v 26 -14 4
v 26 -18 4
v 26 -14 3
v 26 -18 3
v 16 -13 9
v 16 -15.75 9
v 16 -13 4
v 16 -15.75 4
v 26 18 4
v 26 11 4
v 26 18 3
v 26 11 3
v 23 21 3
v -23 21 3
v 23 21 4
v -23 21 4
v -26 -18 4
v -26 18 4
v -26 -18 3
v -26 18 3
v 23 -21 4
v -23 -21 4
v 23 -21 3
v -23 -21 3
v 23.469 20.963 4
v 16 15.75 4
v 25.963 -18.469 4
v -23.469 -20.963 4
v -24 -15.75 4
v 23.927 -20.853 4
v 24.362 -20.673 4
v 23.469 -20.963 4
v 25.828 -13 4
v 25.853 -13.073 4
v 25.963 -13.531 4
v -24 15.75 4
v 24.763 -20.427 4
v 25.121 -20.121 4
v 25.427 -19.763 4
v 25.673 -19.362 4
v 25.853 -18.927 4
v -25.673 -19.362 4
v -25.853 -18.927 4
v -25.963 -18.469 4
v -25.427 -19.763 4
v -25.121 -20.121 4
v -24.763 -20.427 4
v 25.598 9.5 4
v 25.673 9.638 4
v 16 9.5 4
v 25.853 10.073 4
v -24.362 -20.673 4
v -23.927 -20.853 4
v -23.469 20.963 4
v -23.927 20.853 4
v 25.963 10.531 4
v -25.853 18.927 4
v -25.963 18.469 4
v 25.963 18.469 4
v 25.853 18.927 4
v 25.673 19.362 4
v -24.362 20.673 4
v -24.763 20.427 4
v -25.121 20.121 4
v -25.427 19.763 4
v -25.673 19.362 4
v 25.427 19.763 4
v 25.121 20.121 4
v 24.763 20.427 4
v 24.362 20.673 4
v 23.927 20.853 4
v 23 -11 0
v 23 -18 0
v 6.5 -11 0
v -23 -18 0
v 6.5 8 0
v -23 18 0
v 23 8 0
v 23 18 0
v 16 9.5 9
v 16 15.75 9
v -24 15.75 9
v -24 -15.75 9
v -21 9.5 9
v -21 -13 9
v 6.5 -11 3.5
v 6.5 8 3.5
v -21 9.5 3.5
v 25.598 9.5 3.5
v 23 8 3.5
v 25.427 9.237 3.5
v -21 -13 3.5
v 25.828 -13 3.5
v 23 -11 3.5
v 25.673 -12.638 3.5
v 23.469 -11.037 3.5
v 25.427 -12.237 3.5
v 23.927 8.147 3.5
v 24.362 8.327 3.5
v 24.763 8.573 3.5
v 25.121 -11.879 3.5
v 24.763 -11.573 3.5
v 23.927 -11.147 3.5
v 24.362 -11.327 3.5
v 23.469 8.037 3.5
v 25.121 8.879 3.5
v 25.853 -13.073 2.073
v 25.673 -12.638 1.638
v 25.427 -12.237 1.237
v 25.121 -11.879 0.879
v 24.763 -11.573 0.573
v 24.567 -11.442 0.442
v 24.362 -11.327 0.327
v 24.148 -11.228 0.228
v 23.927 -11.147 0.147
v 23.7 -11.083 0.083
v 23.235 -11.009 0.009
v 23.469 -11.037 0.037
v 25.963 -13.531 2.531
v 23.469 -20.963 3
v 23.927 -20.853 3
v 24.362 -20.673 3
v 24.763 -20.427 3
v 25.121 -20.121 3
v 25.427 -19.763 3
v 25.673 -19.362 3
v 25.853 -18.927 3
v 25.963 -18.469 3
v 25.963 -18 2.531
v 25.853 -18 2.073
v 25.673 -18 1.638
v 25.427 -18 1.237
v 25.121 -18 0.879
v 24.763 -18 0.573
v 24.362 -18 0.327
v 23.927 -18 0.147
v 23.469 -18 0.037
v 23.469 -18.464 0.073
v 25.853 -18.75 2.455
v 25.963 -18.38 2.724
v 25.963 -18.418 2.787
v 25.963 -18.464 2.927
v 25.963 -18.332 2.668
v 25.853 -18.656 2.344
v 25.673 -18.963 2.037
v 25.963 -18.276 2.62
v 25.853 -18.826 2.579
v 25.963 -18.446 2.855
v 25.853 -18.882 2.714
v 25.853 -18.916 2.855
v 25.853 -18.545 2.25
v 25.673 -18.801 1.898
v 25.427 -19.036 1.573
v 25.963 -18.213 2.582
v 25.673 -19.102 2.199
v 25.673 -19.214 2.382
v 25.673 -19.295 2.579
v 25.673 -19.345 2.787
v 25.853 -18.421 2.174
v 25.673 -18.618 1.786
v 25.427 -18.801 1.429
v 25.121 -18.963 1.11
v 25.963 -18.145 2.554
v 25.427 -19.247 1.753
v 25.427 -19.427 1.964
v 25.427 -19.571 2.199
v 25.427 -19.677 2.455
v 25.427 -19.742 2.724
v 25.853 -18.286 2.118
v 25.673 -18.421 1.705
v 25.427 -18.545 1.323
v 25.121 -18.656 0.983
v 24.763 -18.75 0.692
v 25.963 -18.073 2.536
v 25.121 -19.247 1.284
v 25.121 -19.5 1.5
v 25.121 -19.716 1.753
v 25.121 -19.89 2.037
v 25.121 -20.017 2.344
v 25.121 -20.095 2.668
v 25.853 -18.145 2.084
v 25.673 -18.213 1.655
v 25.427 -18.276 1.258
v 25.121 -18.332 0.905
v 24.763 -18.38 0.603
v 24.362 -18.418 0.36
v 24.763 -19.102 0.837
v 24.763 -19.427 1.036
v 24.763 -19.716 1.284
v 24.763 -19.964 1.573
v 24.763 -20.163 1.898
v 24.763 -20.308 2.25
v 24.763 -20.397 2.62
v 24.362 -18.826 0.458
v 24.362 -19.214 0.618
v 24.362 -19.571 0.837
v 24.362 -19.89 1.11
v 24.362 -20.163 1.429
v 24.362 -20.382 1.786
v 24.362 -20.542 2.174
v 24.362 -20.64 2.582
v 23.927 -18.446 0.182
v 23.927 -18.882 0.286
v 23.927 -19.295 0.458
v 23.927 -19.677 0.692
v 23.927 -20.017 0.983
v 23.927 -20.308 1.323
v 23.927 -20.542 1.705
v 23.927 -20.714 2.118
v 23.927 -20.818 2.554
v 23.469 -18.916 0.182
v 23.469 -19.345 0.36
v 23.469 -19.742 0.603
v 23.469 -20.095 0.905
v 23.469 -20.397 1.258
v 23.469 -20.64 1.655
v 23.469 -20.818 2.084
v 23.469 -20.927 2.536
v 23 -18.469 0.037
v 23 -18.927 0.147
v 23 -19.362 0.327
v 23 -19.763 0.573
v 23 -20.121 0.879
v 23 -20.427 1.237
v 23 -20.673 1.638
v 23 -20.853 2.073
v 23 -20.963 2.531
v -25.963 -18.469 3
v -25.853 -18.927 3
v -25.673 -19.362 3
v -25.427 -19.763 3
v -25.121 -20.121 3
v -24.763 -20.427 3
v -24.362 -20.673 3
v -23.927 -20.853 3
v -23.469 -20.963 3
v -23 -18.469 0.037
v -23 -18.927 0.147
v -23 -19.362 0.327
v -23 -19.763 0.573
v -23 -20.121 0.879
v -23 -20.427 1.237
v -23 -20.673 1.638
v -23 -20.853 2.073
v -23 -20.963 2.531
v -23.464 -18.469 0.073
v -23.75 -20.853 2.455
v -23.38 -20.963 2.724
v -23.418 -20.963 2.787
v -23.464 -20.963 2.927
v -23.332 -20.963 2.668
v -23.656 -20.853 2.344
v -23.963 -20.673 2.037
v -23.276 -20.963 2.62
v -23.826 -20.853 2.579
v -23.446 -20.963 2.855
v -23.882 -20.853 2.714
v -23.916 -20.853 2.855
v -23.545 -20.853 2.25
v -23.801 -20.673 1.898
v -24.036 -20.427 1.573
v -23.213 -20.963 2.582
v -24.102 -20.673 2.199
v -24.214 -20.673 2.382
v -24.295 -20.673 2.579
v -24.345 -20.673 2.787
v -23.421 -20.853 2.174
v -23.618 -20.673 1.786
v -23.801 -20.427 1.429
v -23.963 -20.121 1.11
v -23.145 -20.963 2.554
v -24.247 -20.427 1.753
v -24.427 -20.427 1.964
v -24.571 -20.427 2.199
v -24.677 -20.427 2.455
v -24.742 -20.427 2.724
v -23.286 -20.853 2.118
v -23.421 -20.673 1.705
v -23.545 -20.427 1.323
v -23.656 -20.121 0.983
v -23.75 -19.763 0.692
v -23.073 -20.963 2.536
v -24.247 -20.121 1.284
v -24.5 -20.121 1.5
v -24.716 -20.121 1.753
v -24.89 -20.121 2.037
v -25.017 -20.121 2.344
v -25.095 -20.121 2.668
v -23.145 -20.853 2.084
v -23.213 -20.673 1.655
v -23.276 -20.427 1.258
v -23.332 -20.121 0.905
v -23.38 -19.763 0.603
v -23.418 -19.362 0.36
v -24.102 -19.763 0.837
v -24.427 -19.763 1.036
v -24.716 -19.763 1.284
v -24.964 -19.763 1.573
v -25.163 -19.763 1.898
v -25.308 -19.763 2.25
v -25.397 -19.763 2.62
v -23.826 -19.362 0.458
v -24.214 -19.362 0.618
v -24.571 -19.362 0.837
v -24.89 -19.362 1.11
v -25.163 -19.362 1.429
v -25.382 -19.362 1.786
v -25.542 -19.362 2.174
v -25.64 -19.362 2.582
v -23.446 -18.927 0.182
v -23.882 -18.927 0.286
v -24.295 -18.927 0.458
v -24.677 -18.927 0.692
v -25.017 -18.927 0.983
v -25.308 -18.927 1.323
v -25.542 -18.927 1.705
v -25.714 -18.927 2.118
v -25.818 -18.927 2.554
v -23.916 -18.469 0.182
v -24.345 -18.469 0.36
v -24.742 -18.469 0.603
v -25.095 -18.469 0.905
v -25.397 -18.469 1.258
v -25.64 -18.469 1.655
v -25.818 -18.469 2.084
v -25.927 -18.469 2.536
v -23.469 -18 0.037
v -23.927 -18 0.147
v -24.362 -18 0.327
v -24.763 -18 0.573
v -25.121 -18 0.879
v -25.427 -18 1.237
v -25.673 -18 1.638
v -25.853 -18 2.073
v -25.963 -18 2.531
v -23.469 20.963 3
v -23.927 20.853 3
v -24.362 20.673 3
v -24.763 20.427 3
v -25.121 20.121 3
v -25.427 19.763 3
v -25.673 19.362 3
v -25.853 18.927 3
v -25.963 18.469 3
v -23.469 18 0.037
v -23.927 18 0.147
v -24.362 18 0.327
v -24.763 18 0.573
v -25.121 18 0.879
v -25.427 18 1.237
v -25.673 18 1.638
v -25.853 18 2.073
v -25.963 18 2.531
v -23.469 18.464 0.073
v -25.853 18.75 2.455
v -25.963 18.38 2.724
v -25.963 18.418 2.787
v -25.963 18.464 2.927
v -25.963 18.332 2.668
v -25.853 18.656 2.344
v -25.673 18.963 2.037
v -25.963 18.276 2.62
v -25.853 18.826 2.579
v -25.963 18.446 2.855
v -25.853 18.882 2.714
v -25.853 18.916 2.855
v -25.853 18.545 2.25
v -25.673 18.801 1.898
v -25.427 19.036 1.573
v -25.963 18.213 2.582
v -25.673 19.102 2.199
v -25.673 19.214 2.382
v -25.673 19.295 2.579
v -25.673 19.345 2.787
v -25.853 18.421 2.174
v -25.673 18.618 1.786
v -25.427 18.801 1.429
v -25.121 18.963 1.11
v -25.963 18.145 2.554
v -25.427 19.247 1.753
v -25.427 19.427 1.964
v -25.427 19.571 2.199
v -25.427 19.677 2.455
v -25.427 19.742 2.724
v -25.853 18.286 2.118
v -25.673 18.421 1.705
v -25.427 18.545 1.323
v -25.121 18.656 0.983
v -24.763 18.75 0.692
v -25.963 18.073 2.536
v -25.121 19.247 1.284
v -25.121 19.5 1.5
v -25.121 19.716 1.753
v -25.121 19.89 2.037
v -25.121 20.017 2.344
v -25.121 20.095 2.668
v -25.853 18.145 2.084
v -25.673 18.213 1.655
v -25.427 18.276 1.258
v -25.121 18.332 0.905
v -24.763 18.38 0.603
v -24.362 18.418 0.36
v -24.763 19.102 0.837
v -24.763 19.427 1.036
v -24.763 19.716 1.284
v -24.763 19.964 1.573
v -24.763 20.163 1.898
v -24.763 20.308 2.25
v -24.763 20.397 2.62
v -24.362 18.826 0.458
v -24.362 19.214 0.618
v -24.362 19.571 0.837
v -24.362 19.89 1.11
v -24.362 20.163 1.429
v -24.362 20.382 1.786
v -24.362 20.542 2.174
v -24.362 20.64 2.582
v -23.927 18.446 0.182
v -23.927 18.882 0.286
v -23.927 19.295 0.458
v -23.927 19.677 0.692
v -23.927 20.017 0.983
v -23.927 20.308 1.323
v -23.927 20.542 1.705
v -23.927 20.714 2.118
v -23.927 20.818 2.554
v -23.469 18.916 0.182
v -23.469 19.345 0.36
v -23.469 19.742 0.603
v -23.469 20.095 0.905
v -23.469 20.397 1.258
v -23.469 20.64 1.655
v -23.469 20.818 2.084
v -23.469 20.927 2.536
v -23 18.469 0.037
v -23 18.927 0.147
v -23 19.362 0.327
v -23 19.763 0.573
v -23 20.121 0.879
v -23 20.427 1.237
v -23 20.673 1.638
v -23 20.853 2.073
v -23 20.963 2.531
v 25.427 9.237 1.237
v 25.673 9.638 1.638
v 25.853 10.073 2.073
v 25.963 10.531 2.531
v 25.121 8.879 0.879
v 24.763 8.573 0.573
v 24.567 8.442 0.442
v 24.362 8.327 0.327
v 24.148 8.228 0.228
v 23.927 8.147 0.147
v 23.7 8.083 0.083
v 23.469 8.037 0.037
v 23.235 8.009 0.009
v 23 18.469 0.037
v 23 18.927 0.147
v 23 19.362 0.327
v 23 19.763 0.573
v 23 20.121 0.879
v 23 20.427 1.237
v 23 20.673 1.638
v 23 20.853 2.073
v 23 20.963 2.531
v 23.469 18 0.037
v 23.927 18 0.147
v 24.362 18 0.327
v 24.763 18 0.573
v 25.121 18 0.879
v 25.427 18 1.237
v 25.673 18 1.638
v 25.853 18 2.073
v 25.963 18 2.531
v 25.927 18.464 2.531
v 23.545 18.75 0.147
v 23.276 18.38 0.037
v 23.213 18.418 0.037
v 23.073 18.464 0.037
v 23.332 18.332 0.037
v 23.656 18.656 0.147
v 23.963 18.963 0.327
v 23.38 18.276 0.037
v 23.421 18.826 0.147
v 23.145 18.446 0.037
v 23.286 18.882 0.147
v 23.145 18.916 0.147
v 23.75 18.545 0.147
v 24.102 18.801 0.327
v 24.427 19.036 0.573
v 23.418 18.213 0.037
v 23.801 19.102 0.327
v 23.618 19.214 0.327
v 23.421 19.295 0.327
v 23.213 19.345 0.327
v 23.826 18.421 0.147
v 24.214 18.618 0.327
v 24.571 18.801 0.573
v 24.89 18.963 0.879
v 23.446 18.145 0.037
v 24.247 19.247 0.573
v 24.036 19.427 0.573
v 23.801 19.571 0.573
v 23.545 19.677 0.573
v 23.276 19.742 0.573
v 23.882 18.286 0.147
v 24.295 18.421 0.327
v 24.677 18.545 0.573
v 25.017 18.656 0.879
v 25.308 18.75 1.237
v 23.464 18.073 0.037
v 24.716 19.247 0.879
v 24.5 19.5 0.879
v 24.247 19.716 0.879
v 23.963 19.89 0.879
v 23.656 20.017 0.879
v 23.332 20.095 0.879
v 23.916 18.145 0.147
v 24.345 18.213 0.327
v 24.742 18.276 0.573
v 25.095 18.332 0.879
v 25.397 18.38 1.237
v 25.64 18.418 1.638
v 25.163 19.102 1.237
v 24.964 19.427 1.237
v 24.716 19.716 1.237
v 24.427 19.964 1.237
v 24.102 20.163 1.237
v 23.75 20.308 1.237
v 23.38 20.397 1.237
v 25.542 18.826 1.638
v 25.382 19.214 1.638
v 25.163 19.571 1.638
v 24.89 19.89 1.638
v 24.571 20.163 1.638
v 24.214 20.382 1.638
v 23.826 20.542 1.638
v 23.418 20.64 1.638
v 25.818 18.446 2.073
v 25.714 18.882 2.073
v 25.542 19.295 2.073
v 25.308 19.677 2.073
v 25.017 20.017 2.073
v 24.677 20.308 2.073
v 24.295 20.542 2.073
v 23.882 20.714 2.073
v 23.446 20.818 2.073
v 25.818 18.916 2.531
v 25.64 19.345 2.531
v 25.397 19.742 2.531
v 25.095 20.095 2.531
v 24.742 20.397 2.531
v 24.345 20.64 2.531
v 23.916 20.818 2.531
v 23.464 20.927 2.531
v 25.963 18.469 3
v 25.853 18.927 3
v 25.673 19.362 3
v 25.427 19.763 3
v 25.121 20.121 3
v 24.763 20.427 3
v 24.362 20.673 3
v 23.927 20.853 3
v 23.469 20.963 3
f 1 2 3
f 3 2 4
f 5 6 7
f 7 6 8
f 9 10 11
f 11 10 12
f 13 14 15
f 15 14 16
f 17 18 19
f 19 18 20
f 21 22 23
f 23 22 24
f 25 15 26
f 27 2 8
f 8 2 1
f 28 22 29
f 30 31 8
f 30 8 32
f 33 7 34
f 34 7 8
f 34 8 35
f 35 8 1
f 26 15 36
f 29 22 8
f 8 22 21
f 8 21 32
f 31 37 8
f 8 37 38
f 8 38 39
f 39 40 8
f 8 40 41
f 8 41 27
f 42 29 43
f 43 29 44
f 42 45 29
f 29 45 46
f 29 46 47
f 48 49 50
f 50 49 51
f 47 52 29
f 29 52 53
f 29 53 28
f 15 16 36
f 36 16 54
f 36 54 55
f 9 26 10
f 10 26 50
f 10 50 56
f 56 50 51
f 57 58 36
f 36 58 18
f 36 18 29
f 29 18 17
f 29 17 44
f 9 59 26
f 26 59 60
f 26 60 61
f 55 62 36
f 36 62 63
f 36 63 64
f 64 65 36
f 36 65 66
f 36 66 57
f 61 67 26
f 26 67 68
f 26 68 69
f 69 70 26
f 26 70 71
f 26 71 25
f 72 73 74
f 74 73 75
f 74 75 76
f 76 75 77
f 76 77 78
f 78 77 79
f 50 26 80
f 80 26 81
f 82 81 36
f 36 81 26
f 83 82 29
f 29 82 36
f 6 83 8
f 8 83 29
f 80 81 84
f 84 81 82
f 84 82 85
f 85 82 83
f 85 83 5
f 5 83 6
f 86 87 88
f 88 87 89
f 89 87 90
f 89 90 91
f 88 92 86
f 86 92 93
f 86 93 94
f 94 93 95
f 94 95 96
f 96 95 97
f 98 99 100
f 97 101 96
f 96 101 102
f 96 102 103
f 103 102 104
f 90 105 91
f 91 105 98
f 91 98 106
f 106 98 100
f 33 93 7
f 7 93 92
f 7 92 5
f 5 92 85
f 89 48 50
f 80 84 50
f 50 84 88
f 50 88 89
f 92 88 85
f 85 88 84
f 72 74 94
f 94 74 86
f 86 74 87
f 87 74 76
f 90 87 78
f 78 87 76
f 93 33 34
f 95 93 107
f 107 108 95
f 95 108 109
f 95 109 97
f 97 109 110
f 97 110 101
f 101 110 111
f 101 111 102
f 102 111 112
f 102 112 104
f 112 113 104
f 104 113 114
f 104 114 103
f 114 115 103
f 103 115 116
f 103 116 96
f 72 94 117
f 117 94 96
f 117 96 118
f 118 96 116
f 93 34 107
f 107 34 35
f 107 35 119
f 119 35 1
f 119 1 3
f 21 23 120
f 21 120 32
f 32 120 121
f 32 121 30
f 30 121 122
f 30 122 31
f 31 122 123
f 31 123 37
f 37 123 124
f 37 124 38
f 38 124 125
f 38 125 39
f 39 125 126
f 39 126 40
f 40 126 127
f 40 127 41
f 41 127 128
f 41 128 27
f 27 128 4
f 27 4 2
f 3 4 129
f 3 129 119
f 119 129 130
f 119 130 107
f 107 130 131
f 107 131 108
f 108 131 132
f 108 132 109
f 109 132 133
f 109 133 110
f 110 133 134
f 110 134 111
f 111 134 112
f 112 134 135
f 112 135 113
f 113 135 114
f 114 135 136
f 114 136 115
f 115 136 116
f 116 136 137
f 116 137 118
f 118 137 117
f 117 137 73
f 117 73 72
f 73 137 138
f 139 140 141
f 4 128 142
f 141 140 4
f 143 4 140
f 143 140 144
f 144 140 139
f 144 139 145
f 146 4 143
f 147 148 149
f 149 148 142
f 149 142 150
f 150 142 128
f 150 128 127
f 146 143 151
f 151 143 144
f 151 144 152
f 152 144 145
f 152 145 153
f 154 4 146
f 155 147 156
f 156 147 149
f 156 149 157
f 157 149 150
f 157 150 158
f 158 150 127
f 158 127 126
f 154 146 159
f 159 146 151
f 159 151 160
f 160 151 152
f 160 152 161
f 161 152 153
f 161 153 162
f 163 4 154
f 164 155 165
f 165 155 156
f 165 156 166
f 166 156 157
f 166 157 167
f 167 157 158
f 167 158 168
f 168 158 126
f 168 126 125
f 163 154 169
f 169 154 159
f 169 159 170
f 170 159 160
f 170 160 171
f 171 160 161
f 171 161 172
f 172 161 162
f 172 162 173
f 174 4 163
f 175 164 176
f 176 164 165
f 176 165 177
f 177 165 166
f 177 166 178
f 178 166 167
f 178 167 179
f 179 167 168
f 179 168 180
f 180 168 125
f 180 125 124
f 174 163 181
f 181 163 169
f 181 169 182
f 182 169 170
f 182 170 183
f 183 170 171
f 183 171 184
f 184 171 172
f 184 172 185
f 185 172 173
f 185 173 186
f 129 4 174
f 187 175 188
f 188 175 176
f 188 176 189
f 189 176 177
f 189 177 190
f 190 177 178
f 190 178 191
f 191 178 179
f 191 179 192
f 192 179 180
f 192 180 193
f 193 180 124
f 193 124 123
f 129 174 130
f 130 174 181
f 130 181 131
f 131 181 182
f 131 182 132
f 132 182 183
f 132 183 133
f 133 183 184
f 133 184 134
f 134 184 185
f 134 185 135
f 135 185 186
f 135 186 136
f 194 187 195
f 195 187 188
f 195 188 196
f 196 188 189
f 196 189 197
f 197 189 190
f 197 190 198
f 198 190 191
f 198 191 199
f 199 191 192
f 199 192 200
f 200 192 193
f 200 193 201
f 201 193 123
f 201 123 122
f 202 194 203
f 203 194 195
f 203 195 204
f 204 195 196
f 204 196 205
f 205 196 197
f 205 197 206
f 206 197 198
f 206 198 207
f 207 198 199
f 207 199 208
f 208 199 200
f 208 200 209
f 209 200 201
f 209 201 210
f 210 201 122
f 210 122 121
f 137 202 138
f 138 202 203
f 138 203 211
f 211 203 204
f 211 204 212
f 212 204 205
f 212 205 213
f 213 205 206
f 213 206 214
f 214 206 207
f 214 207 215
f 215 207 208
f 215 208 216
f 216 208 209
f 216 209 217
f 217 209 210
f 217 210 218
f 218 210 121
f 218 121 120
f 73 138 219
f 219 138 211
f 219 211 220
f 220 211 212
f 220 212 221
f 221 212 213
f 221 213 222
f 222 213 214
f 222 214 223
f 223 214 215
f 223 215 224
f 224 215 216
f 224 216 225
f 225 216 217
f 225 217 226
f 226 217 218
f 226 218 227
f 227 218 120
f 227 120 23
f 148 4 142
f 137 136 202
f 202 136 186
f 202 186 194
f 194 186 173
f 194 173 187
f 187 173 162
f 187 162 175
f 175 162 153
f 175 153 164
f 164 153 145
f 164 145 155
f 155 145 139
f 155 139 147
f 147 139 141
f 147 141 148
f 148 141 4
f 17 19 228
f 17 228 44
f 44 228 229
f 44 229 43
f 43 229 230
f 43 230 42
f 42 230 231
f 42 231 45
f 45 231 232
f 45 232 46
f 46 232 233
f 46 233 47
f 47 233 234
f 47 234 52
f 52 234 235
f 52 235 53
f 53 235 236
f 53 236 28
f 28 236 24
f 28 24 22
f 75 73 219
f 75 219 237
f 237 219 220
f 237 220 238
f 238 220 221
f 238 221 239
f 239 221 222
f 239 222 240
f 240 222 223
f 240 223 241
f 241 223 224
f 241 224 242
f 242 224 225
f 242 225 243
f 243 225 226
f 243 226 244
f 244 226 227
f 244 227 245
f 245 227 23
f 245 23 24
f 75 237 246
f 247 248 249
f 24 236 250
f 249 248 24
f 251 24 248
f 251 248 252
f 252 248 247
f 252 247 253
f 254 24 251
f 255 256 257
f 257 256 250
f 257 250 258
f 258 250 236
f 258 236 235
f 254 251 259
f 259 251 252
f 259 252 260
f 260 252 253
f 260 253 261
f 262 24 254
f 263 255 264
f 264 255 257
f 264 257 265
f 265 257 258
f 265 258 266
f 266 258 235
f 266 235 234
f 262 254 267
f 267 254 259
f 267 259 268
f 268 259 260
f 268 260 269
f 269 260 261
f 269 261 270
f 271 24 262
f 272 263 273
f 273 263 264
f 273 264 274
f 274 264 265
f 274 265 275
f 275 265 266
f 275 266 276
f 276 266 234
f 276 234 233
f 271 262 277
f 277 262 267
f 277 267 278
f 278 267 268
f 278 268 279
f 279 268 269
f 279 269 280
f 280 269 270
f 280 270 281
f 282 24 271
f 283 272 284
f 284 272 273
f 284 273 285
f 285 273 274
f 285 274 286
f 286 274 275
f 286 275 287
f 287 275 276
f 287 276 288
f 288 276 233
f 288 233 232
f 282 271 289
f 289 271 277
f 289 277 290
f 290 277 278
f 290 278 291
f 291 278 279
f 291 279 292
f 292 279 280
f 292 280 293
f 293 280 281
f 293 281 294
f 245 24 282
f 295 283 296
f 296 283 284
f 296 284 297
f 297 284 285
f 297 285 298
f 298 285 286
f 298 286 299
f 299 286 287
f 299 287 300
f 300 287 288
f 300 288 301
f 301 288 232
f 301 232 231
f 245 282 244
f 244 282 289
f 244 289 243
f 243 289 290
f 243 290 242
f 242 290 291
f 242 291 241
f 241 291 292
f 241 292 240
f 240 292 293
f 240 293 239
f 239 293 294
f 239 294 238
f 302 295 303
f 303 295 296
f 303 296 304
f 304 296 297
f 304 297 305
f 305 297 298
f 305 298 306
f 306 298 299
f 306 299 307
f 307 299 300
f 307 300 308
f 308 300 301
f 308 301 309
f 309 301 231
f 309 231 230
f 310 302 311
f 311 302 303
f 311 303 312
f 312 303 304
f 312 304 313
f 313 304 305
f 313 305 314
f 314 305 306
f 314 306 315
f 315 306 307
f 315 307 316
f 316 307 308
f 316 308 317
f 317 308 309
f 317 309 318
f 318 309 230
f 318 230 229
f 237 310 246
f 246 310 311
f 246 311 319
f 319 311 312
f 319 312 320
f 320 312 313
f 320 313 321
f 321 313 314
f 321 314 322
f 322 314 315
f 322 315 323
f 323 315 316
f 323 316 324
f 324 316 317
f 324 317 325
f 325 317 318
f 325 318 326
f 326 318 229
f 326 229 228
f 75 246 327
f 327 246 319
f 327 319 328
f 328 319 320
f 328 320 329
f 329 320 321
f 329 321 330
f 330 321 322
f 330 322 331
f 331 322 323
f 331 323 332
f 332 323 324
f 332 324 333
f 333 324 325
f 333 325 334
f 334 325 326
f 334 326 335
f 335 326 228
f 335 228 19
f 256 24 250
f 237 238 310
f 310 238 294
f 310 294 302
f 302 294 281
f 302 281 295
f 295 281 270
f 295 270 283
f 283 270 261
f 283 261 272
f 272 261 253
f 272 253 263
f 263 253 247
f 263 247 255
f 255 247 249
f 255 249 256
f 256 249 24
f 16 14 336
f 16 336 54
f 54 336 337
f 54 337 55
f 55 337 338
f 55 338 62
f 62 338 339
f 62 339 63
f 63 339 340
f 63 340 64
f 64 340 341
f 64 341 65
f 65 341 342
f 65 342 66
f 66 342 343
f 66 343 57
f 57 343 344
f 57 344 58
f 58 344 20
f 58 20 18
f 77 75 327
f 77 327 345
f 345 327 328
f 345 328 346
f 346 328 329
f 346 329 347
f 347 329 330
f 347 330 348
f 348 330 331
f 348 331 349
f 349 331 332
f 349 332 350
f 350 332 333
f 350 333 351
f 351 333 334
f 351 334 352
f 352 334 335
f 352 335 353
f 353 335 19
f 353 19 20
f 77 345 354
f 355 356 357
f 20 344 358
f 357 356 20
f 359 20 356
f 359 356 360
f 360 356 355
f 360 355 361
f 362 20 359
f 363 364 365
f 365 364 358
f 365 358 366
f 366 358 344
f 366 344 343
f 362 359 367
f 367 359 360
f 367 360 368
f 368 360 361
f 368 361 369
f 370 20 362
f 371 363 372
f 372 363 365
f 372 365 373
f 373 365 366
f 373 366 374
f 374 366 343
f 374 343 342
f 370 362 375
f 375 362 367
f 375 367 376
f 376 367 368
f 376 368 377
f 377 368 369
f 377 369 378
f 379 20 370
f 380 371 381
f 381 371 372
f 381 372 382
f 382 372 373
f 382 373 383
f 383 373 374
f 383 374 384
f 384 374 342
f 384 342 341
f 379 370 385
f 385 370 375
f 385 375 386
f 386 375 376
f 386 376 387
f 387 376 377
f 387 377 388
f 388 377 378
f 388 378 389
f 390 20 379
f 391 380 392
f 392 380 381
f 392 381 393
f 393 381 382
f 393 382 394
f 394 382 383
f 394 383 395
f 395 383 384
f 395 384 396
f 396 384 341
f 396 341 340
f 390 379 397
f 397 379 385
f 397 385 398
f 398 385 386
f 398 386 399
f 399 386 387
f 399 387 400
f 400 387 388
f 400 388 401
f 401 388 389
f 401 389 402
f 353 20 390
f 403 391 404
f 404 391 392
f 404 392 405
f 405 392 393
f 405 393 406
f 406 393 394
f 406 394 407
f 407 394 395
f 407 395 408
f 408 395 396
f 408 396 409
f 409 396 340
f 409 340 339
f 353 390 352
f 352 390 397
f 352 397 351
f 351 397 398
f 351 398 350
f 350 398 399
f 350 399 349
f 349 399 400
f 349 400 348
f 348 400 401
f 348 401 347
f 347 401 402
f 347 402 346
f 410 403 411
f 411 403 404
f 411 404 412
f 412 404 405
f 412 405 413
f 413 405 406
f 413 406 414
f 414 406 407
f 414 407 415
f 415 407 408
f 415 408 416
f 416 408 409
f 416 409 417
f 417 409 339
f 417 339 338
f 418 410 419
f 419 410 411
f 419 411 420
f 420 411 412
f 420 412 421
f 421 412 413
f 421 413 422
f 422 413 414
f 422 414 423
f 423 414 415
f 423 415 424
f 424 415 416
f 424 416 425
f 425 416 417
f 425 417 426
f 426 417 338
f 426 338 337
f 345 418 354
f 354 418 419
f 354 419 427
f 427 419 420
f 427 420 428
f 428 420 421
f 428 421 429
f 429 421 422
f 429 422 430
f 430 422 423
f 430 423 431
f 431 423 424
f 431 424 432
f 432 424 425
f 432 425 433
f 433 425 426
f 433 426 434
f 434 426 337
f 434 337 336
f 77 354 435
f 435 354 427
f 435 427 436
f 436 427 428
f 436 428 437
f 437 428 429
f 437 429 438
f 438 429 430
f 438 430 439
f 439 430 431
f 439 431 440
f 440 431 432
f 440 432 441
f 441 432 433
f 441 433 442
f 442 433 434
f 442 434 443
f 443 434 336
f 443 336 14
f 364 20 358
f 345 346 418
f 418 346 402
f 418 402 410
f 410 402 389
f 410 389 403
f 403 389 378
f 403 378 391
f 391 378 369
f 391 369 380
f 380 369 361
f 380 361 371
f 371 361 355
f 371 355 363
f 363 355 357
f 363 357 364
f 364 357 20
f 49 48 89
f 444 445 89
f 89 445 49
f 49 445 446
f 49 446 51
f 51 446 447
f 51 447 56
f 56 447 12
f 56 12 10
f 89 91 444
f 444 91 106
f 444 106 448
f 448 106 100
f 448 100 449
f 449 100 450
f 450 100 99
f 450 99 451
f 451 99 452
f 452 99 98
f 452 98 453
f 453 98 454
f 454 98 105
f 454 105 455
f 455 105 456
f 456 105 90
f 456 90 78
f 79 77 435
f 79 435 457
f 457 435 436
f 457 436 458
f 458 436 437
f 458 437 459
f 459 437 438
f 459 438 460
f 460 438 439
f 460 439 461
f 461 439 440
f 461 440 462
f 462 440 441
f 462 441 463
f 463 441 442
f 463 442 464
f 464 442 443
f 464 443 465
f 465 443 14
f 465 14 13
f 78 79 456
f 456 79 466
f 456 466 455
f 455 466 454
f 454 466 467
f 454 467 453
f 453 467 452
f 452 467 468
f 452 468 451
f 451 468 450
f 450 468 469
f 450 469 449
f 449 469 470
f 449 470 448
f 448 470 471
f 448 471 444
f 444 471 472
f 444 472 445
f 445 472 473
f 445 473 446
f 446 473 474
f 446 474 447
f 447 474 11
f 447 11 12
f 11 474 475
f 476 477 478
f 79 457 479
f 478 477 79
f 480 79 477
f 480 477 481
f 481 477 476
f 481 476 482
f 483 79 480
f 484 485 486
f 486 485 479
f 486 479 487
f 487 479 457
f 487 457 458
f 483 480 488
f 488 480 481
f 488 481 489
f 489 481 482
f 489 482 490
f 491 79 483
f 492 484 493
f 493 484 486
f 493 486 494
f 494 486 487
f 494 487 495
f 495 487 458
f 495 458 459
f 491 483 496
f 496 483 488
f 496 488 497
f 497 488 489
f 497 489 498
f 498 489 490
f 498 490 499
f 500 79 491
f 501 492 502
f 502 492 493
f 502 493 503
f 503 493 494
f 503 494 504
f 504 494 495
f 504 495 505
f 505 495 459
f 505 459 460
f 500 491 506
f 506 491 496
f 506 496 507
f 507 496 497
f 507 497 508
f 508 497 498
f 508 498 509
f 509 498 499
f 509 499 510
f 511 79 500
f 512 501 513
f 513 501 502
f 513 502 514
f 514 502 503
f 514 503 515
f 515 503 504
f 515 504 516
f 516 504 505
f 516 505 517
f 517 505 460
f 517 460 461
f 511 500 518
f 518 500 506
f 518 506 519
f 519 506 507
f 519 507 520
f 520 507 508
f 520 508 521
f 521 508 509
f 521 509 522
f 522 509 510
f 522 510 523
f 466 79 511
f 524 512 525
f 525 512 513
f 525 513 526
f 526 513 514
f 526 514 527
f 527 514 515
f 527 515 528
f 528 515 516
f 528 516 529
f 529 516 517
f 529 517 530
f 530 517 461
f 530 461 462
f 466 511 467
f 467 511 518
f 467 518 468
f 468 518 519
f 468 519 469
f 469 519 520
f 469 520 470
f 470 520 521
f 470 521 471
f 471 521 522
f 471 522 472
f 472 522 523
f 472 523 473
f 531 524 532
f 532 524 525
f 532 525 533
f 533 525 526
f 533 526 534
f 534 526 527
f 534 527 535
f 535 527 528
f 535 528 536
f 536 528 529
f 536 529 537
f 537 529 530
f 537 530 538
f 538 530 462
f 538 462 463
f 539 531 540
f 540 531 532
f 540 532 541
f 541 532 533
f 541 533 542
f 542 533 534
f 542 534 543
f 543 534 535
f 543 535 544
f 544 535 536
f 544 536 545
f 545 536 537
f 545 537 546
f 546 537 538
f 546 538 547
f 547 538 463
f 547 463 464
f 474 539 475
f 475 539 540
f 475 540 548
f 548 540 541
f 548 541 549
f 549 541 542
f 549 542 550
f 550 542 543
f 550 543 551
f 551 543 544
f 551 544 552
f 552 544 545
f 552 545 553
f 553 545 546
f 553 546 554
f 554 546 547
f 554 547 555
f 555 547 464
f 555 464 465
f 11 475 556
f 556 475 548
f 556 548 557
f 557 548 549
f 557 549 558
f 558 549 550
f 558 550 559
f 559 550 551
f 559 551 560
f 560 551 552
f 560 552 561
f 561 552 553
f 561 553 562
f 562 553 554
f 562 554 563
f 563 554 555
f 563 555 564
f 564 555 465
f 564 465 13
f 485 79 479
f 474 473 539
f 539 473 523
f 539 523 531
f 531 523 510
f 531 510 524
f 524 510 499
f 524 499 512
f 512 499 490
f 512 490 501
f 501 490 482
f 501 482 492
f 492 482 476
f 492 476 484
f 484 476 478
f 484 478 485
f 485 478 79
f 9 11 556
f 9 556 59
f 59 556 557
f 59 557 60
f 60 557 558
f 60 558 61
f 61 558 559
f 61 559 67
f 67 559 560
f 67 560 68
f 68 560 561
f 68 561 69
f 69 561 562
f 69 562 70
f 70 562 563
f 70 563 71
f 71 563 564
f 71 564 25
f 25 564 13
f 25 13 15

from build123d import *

# Parameters (mm, degrees)
SKETCH1_W           = 52
SKETCH1_H           = 42
BOSS_EXTRUDE1_DEPTH = 4
SKETCH2_W           = 40
SKETCH2_H           = 31.5
BOSS_EXTRUDE2_DEPTH = 5
SKETCH4_W           = 50
SKETCH4_H           = 22.5
CUT_EXTRUDE2_DEPTH  = 5.5
SKETCH5_W           = 19.5
SKETCH5_H           = 19
CUT_EXTRUDE3_DEPTH  = 10
FILLET2_R           = 3


with BuildPart() as part:
    # Sketch1 → Boss-Extrude1 (new body)
    with BuildSketch(Plane.XY):
        Rectangle(SKETCH1_W, SKETCH1_H)
    extrude(amount=BOSS_EXTRUDE1_DEPTH)

    # Sketch2 → Boss-Extrude2 (add)
    with BuildSketch(Plane.XY.offset(4)):
        with Locations((-4, 0)):
            Rectangle(SKETCH2_W, SKETCH2_H)
    extrude(amount=BOSS_EXTRUDE2_DEPTH)

    # Sketch4 → Cut-Extrude2 (cut)
    with BuildSketch(Plane.XY.offset(9)):
        with Locations((4, -1.75)):
            Rectangle(SKETCH4_W, SKETCH4_H)
    extrude(amount=-CUT_EXTRUDE2_DEPTH, mode=Mode.SUBTRACT)

    # Sketch5 → Cut-Extrude3 (cut)
    with BuildSketch(Plane.XY.offset(3.5)):
        with Locations((16.25, -1.5)):
            Rectangle(SKETCH5_W, SKETCH5_H)
    extrude(amount=-CUT_EXTRUDE3_DEPTH, mode=Mode.SUBTRACT)

    # Fillet2
    fillet2_edges = [part.edges().sort_by_distance(p)[0] for p in [
        (26, -16, 0),
        (26, 14.5, 0),
        (26, 8, 1.75),
        (26, -11, 1.75),
        (26, -21, 2),
        (-26, -21, 2),
        (0, -21, 0),
        (-26, 0, 0),
        (0, 21, 0),
        (-26, 21, 2),
        (26, 21, 2),
    ]]
    fillet(fillet2_edges, radius=FILLET2_R)


solid = part.part
